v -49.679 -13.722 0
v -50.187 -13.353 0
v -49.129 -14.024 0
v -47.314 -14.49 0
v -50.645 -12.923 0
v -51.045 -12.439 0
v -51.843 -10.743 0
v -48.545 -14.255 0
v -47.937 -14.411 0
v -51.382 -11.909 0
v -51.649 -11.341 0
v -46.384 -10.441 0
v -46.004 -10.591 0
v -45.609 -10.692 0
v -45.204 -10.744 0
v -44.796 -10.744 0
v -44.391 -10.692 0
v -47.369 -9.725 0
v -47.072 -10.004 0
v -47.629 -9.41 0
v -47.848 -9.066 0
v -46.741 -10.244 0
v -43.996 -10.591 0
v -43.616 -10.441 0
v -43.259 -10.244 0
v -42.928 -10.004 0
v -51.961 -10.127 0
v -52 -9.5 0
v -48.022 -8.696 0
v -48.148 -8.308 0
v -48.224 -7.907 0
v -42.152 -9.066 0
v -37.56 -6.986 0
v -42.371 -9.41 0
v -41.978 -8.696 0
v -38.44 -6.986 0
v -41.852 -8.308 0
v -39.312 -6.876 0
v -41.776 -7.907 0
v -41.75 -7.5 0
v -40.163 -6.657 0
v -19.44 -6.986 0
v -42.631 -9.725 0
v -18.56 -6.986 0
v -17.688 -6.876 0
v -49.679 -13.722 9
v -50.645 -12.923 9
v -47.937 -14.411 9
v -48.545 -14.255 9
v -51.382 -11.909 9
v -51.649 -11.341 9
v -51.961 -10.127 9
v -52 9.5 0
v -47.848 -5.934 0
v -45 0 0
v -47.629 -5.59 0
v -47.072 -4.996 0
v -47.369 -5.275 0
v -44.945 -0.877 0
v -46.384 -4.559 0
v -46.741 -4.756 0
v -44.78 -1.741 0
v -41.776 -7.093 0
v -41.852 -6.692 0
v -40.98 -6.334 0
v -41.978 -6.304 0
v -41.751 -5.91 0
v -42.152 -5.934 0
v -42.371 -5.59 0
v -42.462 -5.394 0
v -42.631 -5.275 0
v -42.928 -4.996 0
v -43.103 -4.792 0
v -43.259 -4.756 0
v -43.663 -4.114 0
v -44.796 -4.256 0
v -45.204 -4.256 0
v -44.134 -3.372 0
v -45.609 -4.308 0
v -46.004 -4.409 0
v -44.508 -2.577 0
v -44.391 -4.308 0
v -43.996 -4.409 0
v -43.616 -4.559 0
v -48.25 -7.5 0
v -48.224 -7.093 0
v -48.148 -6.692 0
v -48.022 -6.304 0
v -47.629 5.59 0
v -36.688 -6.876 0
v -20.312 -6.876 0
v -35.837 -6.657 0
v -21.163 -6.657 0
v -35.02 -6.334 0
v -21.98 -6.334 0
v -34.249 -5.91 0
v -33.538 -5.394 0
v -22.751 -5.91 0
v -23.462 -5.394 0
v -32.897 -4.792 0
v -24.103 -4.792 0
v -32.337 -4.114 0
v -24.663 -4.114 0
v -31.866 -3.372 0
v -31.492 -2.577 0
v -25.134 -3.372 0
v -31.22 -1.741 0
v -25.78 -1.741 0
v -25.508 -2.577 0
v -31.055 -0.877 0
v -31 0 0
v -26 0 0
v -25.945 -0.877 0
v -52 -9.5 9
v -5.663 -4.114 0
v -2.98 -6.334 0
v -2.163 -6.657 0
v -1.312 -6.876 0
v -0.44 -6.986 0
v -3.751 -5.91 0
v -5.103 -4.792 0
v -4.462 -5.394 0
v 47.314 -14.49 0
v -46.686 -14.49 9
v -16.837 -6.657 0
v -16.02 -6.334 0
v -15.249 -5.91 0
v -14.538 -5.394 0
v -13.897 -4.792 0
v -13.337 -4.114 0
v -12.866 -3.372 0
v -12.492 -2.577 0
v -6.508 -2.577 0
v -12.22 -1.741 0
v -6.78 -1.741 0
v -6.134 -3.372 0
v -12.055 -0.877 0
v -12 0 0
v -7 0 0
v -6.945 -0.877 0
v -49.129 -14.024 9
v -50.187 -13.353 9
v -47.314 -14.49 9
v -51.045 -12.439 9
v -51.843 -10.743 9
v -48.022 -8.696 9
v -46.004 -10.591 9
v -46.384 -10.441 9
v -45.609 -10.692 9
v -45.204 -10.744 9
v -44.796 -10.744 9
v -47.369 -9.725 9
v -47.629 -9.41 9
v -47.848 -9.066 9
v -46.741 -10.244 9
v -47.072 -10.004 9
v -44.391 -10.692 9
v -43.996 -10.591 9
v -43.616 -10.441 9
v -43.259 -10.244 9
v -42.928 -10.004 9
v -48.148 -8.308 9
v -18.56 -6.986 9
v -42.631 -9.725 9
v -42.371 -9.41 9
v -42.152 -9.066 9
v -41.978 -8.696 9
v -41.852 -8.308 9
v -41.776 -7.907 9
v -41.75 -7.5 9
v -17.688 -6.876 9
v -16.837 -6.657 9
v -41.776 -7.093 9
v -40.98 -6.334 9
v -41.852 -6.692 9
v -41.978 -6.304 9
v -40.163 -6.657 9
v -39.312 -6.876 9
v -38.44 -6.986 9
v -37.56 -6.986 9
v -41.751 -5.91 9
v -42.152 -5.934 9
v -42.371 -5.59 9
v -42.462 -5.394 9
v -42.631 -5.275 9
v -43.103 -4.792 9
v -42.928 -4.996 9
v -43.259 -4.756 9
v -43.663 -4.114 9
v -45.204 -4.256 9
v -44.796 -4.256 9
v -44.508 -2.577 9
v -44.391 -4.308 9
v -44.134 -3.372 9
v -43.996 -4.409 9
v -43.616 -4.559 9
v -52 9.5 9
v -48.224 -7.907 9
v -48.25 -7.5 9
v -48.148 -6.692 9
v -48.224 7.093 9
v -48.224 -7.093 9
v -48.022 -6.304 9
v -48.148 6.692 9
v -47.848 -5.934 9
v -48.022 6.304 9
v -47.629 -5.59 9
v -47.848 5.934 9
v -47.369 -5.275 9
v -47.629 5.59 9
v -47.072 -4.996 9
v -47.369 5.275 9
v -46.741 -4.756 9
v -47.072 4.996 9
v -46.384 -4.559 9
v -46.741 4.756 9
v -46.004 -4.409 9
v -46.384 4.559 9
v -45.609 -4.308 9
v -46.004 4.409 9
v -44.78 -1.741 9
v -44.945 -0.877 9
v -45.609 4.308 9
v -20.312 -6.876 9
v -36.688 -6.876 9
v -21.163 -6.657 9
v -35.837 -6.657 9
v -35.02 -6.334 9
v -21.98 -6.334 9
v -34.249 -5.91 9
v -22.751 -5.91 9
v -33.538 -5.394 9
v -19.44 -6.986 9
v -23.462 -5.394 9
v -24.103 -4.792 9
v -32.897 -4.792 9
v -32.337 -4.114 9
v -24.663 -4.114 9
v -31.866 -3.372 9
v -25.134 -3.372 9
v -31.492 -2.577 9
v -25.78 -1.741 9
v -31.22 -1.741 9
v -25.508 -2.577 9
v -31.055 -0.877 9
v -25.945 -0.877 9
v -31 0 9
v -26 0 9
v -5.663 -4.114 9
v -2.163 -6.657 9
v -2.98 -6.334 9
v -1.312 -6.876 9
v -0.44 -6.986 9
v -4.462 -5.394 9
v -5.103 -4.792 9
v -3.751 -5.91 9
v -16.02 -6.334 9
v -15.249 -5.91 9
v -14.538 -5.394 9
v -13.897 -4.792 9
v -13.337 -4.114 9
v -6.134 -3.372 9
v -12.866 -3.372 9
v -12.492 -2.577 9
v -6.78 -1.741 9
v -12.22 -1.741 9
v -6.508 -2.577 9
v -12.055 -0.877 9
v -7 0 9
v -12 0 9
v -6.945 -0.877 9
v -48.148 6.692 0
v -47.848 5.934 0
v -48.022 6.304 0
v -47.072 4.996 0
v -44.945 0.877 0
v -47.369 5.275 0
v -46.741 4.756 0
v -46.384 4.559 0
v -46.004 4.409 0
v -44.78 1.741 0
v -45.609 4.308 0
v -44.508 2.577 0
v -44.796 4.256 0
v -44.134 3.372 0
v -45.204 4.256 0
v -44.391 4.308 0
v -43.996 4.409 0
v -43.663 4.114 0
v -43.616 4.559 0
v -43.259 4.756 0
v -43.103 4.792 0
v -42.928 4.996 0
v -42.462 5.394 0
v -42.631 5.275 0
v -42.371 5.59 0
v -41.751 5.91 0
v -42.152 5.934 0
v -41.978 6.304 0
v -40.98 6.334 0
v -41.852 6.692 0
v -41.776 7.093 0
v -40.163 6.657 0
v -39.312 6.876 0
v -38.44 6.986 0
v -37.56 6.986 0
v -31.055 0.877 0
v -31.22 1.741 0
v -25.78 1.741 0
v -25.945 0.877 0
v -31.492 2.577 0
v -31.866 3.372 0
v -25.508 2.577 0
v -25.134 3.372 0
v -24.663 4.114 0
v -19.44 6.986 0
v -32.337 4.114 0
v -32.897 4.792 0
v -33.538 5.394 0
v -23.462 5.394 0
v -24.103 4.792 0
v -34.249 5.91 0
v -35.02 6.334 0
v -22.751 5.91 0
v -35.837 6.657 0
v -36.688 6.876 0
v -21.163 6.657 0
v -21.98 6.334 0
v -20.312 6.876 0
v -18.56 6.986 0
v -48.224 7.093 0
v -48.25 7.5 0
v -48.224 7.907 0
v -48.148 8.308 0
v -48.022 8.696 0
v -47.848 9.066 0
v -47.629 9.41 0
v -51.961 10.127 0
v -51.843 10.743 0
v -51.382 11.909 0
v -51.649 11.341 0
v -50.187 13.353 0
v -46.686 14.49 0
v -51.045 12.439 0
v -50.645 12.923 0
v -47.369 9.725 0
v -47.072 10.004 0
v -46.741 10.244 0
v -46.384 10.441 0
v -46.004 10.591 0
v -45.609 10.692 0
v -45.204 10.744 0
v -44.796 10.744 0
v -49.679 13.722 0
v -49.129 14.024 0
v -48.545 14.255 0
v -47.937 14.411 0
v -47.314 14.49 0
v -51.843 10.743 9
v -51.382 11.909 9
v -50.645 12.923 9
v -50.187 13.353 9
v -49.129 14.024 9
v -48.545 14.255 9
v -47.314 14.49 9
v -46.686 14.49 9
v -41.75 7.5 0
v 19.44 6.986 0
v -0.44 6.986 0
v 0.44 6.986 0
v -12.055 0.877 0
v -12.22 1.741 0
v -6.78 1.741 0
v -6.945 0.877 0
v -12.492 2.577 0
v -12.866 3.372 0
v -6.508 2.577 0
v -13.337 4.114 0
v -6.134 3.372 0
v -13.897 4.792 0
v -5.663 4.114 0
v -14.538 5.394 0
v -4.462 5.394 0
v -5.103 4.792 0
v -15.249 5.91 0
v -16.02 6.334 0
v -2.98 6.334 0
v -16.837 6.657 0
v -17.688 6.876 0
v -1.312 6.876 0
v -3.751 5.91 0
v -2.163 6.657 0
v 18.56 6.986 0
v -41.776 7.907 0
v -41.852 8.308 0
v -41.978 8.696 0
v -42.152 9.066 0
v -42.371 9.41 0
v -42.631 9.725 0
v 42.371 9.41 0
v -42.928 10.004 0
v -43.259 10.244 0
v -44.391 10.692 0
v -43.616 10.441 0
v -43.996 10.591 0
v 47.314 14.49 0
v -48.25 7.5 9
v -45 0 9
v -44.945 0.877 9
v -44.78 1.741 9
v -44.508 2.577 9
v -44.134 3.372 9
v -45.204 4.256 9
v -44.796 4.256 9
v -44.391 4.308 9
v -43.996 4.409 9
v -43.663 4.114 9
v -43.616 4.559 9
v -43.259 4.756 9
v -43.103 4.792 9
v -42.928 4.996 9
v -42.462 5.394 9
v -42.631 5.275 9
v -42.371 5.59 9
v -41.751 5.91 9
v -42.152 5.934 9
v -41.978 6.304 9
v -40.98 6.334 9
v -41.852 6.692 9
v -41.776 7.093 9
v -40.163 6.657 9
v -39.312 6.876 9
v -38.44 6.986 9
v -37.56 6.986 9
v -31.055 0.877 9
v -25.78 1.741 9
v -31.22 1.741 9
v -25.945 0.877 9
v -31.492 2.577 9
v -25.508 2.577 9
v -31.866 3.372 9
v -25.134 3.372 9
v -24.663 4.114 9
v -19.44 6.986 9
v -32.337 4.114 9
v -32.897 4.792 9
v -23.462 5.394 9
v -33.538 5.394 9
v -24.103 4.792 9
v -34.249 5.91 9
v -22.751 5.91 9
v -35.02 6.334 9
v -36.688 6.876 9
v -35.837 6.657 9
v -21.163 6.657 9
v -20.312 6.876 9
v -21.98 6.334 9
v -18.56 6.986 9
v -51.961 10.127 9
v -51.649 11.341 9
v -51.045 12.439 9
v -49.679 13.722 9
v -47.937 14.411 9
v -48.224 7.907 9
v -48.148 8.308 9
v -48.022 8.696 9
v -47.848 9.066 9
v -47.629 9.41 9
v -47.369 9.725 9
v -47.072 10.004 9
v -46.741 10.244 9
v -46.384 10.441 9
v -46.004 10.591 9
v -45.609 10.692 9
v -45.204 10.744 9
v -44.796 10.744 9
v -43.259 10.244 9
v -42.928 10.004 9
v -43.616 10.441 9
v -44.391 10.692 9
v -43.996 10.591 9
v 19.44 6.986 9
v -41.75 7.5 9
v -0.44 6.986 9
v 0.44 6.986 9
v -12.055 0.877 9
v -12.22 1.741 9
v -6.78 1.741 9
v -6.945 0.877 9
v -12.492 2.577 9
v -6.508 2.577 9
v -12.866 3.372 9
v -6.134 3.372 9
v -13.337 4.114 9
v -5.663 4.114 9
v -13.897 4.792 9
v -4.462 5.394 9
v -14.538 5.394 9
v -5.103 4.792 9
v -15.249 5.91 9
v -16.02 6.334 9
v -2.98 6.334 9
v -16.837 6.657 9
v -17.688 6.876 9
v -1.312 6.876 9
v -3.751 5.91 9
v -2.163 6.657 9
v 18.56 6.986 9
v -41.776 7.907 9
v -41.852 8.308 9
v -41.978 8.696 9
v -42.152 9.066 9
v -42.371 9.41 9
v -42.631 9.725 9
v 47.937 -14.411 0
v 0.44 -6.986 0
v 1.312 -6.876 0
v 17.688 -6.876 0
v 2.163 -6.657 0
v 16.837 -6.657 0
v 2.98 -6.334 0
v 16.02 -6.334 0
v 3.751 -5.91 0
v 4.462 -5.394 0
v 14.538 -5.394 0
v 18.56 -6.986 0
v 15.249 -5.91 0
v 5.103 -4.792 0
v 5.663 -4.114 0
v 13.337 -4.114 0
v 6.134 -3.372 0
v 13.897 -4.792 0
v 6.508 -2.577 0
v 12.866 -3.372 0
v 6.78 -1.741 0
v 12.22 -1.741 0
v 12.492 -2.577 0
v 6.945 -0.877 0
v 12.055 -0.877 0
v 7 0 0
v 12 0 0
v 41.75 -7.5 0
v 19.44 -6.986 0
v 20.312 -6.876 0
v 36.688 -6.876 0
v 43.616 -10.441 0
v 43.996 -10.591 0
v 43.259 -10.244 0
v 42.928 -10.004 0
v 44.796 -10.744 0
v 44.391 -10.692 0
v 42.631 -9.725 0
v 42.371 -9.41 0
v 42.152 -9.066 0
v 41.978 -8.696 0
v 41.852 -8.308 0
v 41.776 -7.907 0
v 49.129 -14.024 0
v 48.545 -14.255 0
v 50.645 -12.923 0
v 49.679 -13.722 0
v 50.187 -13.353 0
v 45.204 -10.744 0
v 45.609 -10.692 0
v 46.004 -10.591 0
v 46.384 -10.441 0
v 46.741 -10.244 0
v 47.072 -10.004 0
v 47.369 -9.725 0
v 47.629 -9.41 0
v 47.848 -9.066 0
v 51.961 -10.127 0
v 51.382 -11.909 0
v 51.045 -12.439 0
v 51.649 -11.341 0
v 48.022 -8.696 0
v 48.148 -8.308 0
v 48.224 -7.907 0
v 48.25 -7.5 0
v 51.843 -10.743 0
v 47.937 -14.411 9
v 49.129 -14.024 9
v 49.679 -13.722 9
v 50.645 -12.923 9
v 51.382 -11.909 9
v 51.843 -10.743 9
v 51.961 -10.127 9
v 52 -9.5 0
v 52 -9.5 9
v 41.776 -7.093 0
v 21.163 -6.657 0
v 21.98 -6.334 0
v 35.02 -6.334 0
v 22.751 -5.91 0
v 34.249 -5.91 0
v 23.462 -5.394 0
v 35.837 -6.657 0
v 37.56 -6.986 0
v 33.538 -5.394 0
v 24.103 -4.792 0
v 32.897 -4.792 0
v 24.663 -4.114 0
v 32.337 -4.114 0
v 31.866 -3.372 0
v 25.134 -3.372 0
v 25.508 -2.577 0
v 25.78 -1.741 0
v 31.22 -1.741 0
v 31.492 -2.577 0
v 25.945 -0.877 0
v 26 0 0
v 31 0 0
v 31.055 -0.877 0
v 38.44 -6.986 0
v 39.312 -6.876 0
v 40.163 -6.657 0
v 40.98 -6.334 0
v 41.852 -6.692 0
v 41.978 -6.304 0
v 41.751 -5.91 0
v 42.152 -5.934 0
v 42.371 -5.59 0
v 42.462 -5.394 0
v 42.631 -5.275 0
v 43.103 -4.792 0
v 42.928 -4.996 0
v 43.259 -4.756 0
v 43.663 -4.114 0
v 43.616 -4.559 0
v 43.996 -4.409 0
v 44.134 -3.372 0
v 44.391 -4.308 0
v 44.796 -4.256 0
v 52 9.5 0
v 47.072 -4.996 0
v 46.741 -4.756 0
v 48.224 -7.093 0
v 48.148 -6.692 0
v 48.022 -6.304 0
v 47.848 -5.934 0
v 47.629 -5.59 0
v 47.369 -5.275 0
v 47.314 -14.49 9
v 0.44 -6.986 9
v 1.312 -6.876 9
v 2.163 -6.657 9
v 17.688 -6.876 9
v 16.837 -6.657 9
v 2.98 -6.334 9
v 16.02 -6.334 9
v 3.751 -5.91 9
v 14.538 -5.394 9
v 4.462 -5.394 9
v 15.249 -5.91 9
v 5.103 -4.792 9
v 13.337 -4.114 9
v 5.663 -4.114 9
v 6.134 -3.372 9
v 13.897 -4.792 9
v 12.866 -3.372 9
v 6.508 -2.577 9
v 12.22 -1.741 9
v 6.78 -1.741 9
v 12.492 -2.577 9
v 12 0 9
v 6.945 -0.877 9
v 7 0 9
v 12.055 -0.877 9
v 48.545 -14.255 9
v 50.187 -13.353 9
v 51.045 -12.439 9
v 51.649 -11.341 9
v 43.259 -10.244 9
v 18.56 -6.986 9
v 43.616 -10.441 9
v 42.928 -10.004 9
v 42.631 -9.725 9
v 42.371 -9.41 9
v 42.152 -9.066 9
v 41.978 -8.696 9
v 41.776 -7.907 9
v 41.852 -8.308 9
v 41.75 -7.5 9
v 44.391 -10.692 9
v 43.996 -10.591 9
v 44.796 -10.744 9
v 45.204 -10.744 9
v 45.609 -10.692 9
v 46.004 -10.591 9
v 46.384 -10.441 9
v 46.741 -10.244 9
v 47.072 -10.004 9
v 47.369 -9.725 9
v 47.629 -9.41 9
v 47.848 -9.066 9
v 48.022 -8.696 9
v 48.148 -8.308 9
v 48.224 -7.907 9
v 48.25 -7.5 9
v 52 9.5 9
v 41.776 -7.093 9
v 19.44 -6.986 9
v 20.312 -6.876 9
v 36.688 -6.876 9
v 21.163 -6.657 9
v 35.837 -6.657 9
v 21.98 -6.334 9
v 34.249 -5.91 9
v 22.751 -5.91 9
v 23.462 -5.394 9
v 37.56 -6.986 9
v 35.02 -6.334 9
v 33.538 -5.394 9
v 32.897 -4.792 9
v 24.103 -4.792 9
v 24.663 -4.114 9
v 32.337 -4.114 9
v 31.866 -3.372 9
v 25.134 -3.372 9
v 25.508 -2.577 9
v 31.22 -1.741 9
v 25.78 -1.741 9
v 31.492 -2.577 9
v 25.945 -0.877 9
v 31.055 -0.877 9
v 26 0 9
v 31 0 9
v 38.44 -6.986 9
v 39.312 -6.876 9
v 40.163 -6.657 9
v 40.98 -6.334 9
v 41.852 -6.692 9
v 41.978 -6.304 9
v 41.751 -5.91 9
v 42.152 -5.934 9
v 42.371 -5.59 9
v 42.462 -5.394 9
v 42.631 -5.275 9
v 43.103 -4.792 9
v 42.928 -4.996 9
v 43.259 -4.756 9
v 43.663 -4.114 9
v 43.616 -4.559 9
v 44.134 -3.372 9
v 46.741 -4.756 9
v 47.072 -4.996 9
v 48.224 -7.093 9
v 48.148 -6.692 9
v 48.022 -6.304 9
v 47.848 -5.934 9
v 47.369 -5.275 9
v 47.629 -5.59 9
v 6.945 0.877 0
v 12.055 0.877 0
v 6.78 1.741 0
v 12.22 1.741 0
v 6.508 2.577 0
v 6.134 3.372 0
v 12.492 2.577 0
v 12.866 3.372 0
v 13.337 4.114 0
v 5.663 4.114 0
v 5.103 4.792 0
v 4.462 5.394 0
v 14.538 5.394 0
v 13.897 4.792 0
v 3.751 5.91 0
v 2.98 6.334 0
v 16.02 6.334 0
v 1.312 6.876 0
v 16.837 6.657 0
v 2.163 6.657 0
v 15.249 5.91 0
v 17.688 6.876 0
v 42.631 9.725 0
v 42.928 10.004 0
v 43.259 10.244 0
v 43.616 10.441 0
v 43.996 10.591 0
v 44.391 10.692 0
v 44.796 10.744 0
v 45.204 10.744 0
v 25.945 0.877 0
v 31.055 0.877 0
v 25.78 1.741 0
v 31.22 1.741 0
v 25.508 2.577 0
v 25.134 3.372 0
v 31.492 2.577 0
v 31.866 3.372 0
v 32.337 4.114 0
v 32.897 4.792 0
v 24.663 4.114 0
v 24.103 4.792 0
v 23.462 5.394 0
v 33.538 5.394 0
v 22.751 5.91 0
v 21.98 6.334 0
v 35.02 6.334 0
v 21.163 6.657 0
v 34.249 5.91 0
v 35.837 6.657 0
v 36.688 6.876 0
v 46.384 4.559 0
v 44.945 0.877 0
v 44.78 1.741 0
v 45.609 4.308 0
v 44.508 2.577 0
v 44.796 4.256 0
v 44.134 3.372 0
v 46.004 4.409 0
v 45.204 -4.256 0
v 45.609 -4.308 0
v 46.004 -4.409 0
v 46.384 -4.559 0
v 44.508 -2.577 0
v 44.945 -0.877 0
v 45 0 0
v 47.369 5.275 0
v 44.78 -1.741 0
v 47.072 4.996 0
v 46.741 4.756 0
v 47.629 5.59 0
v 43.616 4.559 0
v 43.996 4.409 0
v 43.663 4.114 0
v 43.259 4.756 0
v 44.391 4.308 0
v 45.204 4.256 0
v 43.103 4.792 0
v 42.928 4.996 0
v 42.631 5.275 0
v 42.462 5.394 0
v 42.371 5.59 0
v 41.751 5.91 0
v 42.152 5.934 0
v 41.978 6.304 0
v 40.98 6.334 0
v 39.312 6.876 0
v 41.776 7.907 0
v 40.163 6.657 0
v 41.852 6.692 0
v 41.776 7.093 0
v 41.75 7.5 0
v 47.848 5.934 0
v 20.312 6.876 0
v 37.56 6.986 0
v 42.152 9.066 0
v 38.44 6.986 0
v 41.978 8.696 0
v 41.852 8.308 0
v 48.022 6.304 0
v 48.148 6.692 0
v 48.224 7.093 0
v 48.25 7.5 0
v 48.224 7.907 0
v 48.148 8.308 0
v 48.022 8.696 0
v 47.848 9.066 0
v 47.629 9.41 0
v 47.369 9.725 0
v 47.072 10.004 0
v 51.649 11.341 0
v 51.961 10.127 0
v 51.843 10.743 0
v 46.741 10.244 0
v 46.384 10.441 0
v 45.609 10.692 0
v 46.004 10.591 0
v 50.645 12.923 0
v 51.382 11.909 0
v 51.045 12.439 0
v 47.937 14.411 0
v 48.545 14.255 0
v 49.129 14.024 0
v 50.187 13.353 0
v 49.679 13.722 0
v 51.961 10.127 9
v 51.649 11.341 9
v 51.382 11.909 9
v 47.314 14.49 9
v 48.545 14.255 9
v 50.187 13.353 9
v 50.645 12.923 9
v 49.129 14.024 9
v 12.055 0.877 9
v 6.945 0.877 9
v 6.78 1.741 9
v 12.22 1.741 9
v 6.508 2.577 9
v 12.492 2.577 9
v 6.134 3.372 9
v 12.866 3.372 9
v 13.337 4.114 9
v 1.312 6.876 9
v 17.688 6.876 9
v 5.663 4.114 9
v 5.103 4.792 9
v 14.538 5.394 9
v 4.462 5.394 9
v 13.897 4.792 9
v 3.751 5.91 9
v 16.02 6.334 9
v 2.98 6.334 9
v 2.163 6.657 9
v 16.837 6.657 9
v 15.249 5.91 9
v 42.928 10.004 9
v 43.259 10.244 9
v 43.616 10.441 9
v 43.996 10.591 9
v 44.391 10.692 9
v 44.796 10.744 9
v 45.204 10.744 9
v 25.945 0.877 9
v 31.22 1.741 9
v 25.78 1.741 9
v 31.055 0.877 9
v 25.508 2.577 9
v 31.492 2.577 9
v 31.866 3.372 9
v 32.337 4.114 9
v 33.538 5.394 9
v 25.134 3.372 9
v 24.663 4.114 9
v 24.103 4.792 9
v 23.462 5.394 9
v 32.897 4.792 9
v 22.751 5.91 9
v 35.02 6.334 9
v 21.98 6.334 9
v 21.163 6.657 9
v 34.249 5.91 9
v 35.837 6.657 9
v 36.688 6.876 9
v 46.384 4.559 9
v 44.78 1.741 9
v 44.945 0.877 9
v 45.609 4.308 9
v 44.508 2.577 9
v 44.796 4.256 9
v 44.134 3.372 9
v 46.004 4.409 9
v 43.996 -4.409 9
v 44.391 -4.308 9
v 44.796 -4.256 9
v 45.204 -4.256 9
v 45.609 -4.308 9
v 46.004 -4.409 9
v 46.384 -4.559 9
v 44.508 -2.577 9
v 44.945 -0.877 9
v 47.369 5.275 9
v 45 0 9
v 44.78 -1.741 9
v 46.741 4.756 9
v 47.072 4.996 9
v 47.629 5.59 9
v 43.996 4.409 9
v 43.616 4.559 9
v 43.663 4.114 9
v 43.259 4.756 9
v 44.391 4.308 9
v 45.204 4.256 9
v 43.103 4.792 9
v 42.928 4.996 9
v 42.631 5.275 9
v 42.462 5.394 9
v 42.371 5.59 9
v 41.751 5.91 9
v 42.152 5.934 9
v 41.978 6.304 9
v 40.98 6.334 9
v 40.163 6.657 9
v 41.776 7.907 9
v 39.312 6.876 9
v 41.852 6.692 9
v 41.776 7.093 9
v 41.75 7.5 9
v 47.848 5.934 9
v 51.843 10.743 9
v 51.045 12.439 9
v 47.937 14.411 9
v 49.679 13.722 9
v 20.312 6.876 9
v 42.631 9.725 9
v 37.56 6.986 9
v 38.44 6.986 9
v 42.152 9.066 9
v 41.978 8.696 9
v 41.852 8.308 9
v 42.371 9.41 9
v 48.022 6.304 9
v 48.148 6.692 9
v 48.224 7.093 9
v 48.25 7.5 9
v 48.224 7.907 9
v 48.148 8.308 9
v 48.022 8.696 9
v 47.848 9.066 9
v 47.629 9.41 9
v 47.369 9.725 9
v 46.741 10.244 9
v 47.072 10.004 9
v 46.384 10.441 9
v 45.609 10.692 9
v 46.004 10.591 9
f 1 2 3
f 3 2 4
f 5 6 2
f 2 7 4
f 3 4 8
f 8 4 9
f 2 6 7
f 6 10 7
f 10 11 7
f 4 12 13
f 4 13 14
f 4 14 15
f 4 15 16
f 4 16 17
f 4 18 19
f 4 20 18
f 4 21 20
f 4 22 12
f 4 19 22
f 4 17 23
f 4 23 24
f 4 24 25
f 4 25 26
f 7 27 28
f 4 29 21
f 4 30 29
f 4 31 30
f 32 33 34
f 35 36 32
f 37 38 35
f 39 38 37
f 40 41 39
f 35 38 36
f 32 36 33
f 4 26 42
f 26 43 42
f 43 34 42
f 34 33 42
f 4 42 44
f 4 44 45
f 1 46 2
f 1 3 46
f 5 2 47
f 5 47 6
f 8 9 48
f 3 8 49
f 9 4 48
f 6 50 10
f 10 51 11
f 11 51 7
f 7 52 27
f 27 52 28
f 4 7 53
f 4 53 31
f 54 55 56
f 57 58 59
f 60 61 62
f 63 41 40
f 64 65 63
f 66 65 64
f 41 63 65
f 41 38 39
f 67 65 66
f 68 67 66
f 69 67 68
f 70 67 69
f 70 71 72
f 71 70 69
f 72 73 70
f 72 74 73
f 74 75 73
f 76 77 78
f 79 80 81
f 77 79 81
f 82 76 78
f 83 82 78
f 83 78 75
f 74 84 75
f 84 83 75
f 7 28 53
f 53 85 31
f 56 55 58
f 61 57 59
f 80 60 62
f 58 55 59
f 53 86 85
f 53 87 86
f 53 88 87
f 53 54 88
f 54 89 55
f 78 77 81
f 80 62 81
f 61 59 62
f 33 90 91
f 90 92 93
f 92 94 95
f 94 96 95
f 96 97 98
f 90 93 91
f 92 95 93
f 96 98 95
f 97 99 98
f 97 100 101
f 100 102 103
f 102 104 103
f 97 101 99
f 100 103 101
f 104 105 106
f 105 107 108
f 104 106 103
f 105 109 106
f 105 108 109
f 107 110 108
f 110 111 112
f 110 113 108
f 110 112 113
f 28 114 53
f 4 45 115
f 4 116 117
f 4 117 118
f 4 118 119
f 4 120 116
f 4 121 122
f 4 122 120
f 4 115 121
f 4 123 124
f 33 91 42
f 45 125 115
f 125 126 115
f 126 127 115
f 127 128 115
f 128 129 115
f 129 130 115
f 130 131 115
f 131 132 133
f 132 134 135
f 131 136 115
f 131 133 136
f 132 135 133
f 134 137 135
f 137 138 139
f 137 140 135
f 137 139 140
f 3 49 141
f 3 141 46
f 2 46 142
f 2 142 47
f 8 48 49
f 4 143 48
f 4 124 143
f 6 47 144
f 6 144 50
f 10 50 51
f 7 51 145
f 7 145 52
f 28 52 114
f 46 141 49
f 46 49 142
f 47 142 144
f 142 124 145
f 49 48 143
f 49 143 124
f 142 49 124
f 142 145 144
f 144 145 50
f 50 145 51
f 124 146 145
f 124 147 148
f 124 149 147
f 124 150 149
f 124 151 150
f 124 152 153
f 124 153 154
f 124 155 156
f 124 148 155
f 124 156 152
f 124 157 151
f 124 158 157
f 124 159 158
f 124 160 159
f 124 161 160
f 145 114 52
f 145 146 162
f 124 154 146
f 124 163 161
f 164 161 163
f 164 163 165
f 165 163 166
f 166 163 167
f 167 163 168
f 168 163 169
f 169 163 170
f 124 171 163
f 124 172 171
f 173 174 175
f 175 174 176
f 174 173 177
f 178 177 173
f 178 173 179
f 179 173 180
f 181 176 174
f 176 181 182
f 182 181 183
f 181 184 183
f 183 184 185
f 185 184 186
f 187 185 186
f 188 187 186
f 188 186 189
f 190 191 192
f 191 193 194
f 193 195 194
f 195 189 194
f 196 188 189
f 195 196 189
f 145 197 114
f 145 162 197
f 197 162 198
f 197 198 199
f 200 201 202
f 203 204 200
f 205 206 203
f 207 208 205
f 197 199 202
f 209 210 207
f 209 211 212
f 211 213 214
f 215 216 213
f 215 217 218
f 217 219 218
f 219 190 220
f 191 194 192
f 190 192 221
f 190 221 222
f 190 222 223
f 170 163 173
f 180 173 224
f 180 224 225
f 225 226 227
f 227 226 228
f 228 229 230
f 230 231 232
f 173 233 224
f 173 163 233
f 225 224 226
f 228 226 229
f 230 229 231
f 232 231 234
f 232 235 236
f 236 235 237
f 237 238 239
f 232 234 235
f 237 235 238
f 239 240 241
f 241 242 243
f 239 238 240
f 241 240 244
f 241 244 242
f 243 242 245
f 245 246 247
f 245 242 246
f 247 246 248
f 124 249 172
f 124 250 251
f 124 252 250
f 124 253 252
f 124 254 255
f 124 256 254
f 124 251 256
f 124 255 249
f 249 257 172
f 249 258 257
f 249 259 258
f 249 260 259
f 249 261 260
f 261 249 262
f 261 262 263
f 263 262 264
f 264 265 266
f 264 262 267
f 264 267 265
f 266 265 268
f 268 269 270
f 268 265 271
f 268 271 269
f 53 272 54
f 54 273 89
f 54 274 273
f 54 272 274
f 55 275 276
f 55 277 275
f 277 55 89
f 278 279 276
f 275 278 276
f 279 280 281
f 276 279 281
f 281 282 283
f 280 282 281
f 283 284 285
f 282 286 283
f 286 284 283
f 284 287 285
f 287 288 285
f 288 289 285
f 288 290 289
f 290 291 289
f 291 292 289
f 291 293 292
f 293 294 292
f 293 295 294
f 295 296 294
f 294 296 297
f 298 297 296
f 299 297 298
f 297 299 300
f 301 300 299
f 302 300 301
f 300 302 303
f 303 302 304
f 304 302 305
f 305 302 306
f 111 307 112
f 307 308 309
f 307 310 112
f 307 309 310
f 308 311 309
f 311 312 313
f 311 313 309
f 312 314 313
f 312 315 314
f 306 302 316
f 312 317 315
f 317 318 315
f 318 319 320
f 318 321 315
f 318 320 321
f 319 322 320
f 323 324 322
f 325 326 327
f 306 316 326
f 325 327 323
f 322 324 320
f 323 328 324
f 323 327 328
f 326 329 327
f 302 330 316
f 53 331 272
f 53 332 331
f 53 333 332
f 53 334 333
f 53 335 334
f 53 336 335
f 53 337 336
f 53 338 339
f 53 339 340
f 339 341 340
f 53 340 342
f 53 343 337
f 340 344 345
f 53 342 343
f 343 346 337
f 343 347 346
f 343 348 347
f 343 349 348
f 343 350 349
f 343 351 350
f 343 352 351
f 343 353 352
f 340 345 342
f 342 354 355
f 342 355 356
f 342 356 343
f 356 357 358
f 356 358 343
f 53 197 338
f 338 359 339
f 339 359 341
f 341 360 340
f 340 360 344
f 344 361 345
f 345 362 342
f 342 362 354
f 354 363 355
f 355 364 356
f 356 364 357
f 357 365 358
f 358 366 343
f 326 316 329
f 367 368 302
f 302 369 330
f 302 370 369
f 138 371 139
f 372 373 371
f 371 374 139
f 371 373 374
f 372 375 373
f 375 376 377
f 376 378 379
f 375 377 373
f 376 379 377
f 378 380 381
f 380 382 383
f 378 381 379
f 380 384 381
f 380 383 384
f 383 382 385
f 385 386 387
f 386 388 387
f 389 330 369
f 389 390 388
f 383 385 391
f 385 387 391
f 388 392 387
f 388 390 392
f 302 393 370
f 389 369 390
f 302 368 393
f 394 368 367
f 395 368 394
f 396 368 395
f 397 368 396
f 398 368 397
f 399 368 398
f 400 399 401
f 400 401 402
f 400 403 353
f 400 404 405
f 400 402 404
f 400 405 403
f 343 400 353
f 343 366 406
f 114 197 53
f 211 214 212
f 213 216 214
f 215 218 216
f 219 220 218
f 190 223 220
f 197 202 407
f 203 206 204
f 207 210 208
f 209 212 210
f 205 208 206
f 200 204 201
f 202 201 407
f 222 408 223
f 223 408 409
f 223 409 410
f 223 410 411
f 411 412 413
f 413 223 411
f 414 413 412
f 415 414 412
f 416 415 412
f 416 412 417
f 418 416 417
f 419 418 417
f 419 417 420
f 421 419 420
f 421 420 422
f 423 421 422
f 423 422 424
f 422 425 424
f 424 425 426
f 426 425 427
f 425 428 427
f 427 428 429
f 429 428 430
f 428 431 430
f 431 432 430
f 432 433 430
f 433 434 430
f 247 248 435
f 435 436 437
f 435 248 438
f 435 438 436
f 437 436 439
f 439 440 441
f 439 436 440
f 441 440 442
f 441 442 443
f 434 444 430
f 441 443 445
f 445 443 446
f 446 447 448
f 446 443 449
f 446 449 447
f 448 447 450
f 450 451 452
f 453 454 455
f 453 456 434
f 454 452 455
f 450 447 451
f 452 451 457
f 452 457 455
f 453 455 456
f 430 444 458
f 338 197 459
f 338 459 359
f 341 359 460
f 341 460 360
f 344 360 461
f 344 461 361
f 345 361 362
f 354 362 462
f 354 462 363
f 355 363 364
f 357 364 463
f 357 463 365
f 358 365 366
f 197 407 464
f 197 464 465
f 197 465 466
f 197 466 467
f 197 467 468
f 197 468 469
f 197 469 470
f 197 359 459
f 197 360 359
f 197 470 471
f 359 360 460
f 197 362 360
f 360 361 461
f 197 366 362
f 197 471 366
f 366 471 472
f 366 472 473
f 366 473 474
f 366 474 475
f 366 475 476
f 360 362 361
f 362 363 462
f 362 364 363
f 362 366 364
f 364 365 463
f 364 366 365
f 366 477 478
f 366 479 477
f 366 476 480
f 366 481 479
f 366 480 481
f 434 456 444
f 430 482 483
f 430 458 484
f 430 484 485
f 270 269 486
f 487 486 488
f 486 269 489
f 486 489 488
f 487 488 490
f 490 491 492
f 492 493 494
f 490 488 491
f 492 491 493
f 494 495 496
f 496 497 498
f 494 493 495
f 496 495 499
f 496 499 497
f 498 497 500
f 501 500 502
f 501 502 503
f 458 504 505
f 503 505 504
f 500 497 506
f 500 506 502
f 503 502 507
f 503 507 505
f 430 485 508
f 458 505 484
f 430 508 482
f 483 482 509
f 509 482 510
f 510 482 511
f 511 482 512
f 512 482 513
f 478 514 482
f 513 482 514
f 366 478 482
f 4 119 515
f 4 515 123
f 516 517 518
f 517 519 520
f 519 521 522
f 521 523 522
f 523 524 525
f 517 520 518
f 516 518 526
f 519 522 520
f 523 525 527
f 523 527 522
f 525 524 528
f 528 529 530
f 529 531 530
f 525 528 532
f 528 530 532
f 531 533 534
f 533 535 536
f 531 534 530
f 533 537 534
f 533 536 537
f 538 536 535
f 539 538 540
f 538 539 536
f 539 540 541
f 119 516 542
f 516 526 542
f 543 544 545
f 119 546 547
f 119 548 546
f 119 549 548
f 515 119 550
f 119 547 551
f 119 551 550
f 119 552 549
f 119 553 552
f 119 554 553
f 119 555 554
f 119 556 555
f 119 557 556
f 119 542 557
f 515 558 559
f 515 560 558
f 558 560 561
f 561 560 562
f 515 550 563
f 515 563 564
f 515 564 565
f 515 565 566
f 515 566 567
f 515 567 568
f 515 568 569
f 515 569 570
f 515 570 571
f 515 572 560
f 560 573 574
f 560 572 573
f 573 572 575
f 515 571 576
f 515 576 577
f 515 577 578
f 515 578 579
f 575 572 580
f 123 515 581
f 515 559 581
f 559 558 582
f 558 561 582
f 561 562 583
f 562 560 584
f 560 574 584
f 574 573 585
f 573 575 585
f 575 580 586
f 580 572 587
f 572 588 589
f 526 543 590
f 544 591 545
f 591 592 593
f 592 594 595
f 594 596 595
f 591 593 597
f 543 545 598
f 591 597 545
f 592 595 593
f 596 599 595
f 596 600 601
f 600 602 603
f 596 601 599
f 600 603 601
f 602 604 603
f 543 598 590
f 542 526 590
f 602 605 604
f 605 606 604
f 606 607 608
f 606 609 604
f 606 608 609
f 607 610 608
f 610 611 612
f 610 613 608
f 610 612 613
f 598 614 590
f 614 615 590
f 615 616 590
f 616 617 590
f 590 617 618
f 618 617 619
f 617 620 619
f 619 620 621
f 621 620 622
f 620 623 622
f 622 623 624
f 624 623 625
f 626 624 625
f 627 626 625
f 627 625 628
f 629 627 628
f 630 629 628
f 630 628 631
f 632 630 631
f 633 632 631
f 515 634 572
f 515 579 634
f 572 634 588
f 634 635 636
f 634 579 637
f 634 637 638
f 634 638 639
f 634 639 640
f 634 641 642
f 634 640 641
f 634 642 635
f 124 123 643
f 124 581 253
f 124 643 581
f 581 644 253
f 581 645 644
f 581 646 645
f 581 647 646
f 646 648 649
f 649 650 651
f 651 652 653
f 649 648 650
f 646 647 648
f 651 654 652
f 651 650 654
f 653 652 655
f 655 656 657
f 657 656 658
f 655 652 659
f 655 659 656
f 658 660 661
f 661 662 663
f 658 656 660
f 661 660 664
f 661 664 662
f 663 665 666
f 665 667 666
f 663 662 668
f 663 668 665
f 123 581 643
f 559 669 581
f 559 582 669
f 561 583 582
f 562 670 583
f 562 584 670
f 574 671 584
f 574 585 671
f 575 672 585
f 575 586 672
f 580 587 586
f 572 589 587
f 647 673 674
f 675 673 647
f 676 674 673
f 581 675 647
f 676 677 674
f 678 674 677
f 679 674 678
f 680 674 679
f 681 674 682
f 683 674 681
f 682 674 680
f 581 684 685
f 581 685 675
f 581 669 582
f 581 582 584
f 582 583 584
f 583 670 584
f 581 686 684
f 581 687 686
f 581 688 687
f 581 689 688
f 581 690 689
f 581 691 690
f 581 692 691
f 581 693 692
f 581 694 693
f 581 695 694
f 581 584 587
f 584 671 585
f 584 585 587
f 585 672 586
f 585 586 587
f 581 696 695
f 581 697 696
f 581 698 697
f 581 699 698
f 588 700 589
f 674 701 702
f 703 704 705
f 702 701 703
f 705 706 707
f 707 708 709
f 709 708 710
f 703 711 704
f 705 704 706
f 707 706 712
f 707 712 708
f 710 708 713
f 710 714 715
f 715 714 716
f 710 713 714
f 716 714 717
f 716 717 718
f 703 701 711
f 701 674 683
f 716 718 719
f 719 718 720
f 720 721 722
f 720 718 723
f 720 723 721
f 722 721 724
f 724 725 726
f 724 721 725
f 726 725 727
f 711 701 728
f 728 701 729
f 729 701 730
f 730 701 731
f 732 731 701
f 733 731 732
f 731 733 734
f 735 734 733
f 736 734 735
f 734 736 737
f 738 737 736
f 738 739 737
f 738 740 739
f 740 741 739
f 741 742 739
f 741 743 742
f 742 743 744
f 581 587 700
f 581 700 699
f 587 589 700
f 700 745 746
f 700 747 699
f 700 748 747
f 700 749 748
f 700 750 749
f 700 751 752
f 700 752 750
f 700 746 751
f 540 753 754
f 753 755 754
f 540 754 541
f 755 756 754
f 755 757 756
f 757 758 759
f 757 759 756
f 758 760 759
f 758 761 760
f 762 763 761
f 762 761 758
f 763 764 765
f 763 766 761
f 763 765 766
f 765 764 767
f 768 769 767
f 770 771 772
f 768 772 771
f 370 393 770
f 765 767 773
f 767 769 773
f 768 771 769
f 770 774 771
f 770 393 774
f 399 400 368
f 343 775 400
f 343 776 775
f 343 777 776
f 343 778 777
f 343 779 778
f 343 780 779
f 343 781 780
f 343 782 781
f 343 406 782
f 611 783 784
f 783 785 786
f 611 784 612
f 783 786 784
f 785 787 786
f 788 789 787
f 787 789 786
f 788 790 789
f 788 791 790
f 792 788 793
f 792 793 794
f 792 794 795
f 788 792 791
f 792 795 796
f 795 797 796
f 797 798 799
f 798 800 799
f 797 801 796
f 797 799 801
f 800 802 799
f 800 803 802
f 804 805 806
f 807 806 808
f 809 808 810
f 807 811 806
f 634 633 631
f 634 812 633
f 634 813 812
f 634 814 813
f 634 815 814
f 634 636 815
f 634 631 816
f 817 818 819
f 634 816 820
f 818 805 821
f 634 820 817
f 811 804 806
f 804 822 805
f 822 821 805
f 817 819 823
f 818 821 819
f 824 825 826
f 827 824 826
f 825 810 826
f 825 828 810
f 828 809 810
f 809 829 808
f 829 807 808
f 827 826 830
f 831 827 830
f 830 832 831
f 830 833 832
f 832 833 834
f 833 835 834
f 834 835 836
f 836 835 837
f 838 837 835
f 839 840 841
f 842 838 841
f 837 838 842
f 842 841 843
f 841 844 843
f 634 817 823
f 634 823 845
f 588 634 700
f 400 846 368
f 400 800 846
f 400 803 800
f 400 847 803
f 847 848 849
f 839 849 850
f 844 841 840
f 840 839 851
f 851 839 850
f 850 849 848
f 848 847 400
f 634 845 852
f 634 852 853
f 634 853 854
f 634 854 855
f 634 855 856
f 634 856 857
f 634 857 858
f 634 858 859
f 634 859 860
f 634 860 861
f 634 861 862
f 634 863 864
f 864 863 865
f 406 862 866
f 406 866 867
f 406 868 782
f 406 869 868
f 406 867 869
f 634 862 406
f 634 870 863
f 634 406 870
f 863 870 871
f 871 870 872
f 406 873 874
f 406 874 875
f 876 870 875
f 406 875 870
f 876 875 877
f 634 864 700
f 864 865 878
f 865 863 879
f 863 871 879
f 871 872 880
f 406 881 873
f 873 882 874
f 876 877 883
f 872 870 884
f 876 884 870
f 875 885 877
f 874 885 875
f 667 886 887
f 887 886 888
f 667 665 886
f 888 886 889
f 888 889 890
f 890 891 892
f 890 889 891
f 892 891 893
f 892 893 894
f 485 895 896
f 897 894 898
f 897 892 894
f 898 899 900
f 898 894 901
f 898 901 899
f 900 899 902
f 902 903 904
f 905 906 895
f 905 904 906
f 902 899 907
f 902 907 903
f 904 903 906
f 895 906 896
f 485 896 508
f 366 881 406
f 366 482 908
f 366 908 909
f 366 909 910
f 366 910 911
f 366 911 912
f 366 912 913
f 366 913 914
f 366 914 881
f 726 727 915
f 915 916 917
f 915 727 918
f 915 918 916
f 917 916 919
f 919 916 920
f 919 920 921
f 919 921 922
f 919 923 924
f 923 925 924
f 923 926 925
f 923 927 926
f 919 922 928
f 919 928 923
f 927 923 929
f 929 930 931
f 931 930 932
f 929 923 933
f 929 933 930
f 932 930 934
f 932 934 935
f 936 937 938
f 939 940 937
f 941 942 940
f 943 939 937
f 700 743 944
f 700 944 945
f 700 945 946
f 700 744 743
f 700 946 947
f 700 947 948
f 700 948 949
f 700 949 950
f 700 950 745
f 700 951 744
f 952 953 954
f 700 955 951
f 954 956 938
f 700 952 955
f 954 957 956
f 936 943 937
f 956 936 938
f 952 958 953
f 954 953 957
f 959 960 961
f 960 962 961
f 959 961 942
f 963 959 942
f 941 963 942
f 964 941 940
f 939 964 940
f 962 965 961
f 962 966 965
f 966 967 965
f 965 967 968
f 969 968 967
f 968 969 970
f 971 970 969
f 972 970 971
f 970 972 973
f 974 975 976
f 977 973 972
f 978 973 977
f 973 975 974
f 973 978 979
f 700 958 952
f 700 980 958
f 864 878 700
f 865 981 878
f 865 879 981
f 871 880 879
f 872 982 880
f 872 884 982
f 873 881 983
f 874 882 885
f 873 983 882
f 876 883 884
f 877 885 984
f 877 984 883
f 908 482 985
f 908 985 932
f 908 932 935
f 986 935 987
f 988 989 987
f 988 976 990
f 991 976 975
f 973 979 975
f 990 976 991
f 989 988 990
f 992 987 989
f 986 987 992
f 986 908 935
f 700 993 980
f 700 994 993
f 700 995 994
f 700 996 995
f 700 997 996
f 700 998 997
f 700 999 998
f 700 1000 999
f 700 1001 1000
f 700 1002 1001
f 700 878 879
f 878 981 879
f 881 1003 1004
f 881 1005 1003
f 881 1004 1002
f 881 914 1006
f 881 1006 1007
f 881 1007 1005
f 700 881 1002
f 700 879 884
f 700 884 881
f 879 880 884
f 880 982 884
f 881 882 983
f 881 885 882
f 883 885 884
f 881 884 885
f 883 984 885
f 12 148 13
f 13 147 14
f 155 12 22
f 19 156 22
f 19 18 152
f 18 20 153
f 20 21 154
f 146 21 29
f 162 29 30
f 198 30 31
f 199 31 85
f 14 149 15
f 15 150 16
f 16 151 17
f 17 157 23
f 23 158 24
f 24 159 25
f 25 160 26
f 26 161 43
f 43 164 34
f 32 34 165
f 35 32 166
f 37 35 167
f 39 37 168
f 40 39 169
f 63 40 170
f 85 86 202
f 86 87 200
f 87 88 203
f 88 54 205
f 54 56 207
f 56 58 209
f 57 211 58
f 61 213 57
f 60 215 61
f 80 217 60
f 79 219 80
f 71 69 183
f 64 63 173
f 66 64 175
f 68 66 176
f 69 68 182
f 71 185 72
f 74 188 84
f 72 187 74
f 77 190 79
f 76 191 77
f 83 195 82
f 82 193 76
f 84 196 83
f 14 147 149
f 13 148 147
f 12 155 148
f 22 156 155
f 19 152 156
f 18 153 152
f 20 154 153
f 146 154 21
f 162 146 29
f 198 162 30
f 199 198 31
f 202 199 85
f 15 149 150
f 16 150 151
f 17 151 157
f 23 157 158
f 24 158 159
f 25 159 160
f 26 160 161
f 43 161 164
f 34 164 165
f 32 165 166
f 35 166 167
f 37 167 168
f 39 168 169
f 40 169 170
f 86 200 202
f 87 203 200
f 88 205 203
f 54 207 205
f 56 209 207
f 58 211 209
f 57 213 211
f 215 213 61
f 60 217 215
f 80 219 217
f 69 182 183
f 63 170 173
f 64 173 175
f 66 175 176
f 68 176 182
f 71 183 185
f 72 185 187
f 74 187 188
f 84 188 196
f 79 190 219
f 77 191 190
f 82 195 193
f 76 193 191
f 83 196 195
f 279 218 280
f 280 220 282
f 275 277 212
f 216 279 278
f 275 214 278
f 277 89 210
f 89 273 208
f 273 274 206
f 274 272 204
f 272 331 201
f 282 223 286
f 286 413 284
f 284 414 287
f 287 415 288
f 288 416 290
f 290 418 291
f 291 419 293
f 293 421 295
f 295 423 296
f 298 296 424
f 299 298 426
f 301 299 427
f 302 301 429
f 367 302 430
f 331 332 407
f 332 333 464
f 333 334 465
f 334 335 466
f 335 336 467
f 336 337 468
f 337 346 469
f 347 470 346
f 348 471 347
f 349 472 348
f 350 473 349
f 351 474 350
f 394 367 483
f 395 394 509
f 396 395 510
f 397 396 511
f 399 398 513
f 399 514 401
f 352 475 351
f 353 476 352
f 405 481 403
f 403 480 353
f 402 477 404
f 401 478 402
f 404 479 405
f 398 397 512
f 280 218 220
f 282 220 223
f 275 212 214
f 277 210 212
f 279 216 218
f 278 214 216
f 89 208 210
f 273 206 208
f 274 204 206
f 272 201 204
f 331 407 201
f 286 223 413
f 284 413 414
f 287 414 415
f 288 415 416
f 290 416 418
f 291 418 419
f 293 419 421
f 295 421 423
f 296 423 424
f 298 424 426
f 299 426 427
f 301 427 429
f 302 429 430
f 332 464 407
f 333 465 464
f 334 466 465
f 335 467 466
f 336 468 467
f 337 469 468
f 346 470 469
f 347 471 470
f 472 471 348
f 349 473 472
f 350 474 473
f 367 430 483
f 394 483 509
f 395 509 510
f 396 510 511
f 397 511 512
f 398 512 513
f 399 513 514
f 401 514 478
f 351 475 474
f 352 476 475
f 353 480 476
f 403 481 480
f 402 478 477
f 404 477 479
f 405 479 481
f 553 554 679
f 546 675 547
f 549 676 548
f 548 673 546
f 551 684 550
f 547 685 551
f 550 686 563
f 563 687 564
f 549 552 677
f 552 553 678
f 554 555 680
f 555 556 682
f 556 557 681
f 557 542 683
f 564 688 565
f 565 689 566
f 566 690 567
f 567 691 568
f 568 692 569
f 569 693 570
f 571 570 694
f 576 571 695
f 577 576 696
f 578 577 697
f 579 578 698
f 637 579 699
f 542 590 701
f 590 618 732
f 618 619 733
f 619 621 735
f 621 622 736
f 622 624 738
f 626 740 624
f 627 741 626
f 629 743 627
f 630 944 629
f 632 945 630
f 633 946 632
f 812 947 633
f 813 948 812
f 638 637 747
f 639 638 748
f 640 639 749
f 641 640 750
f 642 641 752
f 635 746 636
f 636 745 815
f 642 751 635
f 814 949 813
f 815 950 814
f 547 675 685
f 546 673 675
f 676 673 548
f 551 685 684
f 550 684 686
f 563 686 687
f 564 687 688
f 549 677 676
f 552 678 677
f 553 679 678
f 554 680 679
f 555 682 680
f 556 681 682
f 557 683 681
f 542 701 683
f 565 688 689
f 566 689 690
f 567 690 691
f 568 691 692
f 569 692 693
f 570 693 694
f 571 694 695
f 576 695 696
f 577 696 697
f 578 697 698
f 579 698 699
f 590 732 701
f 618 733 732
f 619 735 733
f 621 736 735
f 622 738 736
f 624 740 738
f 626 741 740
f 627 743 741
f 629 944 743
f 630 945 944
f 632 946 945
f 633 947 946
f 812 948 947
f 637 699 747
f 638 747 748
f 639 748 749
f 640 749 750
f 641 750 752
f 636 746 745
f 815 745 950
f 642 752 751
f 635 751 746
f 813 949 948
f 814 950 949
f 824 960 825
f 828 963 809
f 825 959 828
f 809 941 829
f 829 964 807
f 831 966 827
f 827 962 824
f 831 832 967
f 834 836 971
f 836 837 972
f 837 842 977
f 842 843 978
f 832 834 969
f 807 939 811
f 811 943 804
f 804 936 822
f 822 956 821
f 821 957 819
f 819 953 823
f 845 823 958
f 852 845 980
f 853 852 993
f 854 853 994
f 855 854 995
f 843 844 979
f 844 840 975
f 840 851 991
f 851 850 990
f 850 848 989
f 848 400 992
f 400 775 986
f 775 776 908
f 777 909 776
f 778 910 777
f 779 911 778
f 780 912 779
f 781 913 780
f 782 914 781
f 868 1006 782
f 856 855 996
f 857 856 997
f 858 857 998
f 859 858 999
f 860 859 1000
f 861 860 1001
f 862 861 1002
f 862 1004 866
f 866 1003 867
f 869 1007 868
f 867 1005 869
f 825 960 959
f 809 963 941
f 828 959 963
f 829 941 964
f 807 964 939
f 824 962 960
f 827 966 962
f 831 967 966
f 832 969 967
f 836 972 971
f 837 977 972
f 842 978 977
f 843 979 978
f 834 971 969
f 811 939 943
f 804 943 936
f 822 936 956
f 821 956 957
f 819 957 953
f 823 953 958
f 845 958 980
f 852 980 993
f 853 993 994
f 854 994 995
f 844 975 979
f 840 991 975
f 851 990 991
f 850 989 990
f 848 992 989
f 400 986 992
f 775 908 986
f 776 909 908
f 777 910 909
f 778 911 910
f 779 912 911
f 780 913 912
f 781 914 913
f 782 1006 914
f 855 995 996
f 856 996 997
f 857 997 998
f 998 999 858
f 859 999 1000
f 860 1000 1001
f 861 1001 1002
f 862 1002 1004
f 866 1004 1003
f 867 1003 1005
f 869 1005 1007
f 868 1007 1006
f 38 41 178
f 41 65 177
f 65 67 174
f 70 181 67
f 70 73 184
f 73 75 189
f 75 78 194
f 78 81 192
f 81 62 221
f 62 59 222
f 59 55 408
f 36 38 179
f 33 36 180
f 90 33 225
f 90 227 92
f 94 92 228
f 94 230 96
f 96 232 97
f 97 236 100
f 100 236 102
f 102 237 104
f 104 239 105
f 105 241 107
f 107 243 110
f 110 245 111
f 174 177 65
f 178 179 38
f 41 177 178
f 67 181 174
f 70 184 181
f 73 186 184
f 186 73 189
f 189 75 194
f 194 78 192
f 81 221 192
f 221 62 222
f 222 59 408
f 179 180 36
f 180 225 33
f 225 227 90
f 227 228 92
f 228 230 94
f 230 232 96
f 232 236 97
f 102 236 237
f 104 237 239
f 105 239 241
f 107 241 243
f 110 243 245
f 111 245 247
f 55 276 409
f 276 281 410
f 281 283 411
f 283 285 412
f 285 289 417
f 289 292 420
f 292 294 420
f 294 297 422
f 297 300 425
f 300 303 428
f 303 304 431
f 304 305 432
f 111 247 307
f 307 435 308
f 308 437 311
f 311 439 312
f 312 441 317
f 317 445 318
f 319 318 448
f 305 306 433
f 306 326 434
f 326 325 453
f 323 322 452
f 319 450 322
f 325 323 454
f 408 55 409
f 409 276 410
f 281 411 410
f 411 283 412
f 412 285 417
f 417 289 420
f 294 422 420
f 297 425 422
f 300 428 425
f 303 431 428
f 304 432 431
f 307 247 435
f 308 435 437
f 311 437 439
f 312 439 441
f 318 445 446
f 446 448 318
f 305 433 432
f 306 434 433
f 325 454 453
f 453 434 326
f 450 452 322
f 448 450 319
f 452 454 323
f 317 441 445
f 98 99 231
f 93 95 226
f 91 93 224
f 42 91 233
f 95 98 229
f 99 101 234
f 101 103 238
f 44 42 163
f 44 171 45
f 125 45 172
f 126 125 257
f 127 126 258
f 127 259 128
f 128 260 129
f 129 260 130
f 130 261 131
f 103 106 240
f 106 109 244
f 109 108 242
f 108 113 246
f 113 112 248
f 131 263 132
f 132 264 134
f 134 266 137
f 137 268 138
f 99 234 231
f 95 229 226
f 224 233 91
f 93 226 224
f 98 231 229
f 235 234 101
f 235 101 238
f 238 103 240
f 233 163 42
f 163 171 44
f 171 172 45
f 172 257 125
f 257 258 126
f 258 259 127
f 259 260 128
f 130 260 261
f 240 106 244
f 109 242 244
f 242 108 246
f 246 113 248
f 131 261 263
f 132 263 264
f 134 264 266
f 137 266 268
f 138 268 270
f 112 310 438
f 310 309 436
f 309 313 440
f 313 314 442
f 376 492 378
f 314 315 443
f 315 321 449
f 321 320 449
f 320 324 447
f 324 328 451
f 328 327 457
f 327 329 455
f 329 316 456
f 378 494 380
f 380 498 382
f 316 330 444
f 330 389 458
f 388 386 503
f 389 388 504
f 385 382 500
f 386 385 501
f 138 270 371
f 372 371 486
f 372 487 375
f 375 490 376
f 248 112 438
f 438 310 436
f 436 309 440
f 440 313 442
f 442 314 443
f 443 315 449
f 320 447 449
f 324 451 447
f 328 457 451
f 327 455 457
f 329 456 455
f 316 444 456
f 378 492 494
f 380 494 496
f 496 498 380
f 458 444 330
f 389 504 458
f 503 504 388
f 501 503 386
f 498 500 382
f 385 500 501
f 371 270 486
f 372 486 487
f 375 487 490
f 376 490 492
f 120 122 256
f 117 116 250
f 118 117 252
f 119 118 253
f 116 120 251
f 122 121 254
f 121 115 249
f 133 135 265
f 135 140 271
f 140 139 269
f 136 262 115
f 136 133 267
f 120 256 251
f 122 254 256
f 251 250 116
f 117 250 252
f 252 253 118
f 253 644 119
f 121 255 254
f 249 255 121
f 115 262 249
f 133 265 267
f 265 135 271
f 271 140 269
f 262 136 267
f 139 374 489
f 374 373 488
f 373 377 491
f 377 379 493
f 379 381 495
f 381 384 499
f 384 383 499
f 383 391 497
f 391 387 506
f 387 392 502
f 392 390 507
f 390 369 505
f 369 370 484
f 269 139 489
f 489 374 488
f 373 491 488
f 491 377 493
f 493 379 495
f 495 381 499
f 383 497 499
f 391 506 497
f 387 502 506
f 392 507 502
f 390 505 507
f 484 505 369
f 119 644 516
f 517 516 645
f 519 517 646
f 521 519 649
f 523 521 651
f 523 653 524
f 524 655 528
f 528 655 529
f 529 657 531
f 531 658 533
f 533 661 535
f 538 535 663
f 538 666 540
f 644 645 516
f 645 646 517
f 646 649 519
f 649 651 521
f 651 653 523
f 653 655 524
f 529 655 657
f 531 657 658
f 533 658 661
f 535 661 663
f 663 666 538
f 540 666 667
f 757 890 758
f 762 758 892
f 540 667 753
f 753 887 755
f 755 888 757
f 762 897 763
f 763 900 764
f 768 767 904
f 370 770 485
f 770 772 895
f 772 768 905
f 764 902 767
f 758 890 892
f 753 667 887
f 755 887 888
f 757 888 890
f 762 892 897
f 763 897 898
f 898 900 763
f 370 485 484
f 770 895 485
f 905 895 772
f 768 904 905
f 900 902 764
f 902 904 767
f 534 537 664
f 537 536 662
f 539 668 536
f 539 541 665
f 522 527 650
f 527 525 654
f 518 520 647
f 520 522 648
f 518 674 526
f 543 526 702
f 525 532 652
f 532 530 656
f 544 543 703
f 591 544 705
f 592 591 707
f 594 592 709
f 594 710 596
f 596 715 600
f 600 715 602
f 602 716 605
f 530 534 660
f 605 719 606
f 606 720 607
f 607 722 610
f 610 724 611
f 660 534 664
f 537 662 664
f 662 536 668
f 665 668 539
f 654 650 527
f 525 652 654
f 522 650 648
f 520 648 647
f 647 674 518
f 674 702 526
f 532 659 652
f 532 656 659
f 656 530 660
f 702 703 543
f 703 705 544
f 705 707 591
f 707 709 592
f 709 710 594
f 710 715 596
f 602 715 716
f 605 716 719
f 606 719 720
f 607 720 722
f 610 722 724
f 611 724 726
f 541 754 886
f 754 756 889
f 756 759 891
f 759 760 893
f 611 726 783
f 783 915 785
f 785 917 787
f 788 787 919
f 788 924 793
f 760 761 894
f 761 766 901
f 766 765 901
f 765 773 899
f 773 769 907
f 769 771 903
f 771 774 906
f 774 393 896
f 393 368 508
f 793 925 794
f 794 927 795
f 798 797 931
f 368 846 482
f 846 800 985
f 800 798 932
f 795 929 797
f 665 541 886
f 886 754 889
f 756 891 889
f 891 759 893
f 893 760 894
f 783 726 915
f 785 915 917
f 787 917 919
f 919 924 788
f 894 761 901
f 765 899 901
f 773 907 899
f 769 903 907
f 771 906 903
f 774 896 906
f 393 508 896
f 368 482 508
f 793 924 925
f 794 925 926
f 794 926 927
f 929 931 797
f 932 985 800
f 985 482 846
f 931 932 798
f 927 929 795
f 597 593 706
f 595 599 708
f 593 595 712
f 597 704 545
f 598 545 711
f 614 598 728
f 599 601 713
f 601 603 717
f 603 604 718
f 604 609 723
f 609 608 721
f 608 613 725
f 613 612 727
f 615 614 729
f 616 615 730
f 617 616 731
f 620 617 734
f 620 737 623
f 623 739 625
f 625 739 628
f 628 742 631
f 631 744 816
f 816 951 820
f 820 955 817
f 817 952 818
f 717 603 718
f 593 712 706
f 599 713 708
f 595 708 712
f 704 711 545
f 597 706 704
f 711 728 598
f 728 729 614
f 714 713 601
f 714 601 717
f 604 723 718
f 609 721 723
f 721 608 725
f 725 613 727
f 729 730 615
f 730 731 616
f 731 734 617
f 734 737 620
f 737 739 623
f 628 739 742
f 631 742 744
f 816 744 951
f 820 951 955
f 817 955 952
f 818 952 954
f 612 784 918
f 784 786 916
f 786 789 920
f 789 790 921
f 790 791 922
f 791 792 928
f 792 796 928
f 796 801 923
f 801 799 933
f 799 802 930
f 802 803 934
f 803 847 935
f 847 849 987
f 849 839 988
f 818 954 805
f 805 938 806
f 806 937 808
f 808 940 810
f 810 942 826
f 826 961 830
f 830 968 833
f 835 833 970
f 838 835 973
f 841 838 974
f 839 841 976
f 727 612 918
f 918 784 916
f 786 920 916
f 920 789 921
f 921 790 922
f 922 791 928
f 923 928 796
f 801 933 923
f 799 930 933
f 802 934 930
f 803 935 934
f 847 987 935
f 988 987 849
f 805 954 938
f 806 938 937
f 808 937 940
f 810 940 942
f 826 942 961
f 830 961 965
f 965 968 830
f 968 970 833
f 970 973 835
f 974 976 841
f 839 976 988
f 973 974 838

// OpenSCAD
$fn = 50;

difference() {
	union() {
		hull() {
			translate(v = [-47.0, 9.5, 0]) {
				cylinder(h = 9, r = 5);
			}
			translate(v = [47.0, 9.5, 0]) {
				cylinder(h = 9, r = 5);
			}
			translate(v = [-47.0, -9.5, 0]) {
				cylinder(h = 9, r = 5);
			}
			translate(v = [47.0, -9.5, 0]) {
				cylinder(h = 9, r = 5);
			}
		}
	}
	union() {
		translate(v = [-45.0, -7.5, -100.0]) {
			cylinder(h = 200, r = 3.25);
		}
		translate(v = [-45.0, 7.5, -100.0]) {
			cylinder(h = 200, r = 3.25);
		}
		translate(v = [45.0, -7.5, -100.0]) {
			cylinder(h = 200, r = 3.25);
		}
		translate(v = [45.0, 7.5, -100.0]) {
			cylinder(h = 200, r = 3.25);
		}
		translate(v = [-45.0, -7.5, -100.0]) {
			cylinder(h = 200, r = 1.8);
		}
		translate(v = [-45.0, 7.5, -100.0]) {
			cylinder(h = 200, r = 1.8);
		}
		translate(v = [45.0, -7.5, -100.0]) {
			cylinder(h = 200, r = 1.8);
		}
		translate(v = [45.0, 7.5, -100.0]) {
			cylinder(h = 200, r = 1.8);
		}
		translate(v = [-38.0, 0, 0.0]) {
			cylinder(h = 9, r = 7.0);
		}
		translate(v = [-19.0, 0, 0.0]) {
			cylinder(h = 9, r = 7.0);
		}
		cylinder(h = 9, r = 7.0);
		translate(v = [19.0, 0, 0.0]) {
			cylinder(h = 9, r = 7.0);
		}
		translate(v = [38.0, 0, 0.0]) {
			cylinder(h = 9, r = 7.0);
		}
	}
}
